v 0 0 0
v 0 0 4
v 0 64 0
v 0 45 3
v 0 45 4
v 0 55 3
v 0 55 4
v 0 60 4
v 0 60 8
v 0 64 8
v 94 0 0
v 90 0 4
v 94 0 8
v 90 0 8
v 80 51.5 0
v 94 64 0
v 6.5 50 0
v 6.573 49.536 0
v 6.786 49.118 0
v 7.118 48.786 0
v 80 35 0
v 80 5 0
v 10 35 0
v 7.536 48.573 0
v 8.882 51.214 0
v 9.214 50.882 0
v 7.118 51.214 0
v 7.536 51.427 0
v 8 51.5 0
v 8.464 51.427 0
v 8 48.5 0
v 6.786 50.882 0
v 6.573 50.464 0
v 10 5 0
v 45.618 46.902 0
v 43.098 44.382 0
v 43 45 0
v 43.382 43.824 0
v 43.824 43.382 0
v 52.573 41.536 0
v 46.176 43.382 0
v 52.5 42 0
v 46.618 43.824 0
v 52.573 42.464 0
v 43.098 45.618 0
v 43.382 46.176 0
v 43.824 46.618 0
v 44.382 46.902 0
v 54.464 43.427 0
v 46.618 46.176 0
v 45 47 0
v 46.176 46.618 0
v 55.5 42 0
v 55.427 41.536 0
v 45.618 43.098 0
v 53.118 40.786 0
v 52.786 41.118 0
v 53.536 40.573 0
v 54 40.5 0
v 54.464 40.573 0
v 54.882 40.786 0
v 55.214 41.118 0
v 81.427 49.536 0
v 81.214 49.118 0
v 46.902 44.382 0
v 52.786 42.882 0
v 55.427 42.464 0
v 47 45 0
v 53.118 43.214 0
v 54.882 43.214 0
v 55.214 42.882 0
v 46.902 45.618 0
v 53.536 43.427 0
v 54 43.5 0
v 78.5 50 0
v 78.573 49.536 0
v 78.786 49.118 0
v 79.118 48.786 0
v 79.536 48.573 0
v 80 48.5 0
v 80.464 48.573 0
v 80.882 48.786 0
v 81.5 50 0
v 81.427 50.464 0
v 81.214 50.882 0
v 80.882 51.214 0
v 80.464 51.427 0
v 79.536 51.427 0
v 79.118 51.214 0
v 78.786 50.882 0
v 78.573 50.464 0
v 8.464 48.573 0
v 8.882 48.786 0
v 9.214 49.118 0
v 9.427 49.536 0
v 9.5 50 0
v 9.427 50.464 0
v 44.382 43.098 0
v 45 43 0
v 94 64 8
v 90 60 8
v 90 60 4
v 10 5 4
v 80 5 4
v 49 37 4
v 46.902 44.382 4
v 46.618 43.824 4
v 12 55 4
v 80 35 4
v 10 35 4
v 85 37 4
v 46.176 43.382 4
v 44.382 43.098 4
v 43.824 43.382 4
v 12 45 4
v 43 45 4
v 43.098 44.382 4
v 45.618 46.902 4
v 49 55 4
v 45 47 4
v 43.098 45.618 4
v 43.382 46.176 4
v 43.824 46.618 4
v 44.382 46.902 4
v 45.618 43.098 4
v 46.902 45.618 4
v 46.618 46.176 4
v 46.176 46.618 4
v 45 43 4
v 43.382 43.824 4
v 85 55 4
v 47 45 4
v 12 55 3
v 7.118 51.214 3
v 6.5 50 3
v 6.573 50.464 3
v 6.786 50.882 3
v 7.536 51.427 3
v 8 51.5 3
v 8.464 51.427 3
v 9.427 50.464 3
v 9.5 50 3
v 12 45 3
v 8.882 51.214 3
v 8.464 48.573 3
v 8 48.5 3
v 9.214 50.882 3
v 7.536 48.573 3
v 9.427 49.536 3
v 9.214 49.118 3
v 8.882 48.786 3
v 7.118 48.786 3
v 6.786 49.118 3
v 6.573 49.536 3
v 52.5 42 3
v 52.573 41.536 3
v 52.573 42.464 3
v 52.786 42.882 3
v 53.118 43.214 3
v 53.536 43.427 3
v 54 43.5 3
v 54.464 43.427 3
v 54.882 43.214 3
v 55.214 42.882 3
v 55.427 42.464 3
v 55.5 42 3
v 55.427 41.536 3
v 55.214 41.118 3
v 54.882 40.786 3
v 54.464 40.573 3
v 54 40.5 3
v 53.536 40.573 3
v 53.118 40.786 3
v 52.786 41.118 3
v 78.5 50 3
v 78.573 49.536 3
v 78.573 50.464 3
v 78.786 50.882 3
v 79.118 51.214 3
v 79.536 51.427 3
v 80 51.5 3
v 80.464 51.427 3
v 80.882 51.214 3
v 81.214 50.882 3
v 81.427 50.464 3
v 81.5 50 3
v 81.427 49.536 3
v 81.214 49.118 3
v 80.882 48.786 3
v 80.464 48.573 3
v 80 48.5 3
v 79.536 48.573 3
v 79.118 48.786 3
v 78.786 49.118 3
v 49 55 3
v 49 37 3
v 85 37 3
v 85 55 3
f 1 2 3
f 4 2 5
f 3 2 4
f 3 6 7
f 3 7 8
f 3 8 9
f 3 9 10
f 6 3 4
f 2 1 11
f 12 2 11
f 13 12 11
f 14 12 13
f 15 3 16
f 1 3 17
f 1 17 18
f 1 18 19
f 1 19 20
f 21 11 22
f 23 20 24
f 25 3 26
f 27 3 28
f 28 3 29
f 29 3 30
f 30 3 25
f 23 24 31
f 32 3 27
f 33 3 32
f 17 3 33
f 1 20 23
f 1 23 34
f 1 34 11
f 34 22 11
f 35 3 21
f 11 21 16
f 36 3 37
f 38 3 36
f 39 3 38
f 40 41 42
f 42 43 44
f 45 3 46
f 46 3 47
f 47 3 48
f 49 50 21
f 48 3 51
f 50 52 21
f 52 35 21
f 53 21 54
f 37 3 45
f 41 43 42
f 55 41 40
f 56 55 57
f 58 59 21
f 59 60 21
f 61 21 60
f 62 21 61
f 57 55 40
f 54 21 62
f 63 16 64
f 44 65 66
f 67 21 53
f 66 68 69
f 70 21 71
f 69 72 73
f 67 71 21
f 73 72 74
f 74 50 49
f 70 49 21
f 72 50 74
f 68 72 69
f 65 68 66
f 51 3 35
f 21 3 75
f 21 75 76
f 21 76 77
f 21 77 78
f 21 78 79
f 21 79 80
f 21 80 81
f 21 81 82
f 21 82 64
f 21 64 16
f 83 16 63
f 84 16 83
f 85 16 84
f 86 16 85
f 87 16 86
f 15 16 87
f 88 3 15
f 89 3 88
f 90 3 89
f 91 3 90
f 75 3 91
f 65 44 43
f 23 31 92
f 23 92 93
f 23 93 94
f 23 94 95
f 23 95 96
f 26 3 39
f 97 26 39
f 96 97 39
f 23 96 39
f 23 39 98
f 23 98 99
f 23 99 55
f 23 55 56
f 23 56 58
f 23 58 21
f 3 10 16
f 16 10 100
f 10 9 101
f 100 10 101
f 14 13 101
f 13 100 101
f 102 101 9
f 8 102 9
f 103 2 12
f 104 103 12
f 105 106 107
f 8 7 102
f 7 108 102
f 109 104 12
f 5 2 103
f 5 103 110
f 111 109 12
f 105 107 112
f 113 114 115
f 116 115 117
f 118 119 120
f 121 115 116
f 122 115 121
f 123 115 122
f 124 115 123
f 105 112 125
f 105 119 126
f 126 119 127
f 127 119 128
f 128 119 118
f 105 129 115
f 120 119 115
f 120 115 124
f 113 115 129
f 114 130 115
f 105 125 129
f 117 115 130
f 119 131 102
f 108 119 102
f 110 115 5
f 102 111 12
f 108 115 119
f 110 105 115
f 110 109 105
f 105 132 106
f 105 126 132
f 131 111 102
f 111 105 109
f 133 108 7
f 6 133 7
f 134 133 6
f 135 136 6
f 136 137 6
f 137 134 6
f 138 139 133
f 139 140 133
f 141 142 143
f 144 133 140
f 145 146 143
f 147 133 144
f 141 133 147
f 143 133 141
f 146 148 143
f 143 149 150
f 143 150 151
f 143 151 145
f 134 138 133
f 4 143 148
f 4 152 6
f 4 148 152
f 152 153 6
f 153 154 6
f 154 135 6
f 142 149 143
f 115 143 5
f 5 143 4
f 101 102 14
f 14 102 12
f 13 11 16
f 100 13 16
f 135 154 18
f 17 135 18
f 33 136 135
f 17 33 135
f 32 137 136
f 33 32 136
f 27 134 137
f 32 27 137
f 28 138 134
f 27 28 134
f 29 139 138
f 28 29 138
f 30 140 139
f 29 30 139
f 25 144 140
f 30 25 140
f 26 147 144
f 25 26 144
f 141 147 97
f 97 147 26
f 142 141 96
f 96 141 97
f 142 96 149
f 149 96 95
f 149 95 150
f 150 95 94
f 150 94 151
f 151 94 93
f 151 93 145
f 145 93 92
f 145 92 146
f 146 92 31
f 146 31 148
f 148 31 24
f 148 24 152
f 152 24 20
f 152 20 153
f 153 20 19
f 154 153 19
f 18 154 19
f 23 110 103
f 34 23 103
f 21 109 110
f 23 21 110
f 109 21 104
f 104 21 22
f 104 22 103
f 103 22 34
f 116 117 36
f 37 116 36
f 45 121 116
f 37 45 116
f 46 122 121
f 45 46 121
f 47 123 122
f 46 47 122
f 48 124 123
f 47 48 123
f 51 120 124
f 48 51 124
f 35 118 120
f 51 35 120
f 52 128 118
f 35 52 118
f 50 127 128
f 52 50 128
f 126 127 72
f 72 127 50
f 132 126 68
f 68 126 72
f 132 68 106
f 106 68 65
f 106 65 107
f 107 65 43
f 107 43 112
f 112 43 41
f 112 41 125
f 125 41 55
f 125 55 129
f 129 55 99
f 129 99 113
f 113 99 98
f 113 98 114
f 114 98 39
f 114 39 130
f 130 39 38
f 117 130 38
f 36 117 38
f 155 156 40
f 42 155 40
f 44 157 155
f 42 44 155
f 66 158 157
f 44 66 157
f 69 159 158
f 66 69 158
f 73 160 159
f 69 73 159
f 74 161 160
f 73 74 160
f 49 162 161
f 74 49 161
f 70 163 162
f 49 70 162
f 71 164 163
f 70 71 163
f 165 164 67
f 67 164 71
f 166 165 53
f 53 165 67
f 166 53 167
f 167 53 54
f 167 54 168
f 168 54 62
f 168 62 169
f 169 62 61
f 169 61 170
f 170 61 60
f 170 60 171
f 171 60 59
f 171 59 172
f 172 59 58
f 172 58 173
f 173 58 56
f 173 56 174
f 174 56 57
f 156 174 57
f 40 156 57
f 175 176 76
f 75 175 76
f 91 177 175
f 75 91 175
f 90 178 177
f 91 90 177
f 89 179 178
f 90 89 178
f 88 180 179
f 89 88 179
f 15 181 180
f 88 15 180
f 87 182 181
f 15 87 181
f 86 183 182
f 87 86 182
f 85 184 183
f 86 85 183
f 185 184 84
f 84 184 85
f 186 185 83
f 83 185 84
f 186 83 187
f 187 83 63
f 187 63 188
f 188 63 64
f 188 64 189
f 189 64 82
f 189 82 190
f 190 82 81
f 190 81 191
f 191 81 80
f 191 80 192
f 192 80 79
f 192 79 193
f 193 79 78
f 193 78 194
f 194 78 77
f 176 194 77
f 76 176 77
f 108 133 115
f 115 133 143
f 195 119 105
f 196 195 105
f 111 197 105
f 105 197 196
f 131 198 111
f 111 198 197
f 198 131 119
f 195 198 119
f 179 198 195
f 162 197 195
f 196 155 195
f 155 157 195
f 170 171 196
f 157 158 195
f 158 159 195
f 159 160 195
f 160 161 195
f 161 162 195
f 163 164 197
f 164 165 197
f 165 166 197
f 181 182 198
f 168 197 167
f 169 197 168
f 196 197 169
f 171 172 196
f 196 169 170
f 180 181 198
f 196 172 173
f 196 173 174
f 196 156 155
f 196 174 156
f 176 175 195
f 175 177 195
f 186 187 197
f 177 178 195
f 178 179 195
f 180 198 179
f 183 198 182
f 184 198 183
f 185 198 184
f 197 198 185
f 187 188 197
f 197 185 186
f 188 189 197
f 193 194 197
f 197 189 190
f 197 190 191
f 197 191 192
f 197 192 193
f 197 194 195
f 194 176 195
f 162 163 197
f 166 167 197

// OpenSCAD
w=36;
h=18;

module clamp() {
	// center
	translate([0,0,-0.5]) {
		translate([0,0,4]) cube([w,h,5],true);
		translate([-13,-4,-3]) cylinder(5,r=1.5,$fn=20);
		translate([13,4,-3]) cylinder(5,r=1.5,$fn=20);
	}
}

w1=24;
h1=10;

module belt() {
	// center
	translate([0,0,-0.5]) {
		translate([0,0,4]) cube([w1,h1,5],true);
		translate([-8,0,-3]) cylinder(5,r=1.5,$fn=20);
		translate([8,0,-3]) cylinder(5,r=1.5,$fn=20);
	}
}


x=180;
y=120;
z=4;
dx=5;
dy=5;
xx=x/2-w/2-dx;
yy=y/2-h/2-dy;
xx0=x/2-w1/2-dx;
yy0=y/2-h1/2-dy;

dx1=45;
dy1=45;
dd=4;
//translate([0,0,10]) cube([210,210,z],true);
intersection() {
cube([100,100,10]);
translate([0,0,z/2])
difference() {
	union() {
		cube([x,y,z],true);
		translate([x/4+z/2,y/2+dd/2,z/2])cube([x/2+z,dd,z*2],true);
		translate([x/2+dd/2,y/4+z/2,z/2])cube([dd,y/2+z,z*2],true);
	}
	translate([0,0,-0.5]) {
		translate([-45,20,0]) cube([70,30,6],true);
		translate([-45,-20,0]) cube([70,30,6],true);
		translate([45,20,0]) cube([70,30,6],true);
		translate([45,-20,0]) cube([70,30,6],true);
	}
	// направляющие
	translate([xx,yy,0]) clamp();
	translate([-xx,-yy,0]) clamp();
	translate([xx,-yy,0]) clamp();
	translate([-xx,yy,0]) clamp();

	// ремень
	translate([0,yy0,0]) belt();
	translate([0,-yy0,0]) belt();
	
	// верхняя площадка
	translate([-dx1,-dy1,-2.5]) cylinder(5,r=2,$fn=20);
	translate([-dx1,dy1,-2.5]) cylinder(5,r=2,$fn=20);
	translate([dx1,dy1,-2.5]) cylinder(5,r=2,$fn=20);
	translate([dx1,-dy1,-2.5]) cylinder(5,r=2,$fn=20);
}}
echo("between rods",2*xx);
